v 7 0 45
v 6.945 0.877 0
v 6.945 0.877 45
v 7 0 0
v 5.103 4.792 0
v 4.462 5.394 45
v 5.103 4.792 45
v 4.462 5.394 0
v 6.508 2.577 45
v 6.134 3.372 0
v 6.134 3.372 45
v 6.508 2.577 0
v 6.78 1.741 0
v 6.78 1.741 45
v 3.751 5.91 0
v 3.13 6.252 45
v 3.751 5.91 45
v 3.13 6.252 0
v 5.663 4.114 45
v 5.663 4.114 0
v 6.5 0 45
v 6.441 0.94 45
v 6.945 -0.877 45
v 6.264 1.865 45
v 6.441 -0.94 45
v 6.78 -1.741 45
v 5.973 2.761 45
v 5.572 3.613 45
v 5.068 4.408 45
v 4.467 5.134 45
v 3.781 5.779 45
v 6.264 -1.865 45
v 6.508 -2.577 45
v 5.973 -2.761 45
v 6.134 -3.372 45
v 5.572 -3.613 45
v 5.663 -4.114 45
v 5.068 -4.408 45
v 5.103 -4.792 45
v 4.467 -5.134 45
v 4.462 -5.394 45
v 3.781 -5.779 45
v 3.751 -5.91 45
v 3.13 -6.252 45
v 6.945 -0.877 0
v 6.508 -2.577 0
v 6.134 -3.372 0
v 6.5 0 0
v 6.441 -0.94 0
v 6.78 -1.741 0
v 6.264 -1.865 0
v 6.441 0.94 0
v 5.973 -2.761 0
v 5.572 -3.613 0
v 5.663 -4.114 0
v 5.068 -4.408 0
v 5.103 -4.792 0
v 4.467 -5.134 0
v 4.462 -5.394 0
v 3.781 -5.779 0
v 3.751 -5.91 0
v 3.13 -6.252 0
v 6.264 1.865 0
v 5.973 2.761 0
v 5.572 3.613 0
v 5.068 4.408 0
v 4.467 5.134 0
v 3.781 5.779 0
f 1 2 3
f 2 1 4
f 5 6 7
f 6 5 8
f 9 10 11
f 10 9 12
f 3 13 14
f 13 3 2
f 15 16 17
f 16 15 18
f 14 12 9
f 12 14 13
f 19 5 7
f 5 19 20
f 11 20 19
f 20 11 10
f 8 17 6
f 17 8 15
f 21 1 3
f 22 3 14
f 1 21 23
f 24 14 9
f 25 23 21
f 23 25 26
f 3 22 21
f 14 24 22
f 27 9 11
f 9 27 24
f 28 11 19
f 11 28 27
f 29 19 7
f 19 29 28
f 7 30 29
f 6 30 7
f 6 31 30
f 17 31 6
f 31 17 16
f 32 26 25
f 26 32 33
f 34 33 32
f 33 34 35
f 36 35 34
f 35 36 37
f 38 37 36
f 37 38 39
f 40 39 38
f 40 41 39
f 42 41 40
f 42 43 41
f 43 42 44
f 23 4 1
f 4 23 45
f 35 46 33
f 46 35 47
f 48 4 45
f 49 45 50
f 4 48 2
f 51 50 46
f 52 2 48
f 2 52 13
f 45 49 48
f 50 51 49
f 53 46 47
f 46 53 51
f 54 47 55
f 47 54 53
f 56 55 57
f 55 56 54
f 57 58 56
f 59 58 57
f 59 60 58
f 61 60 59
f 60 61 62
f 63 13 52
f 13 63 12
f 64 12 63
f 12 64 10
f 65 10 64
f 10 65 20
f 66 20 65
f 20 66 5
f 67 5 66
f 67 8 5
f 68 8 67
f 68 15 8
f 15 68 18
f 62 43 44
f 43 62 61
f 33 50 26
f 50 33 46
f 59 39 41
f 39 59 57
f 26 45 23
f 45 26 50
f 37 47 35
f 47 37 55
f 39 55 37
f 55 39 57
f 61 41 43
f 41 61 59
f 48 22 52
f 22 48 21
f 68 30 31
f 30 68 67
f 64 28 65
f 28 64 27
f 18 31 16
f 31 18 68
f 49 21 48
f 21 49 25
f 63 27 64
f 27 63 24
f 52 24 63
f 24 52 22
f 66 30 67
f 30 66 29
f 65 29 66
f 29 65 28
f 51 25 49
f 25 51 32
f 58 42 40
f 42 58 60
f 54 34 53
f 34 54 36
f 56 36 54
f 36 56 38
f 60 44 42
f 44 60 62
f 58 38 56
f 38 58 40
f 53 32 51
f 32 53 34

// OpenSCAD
$fn = 50;


difference() {
	union() {
		cylinder(h = 45, r = 7.0000000000);
		translate(v = [-4.0000000000, 0, 0]) {
			cylinder(h = 45, r = 7.0000000000);
		}
	}
	union() {
		cylinder(h = 45, r = 3.2500000000);
		cylinder(h = 45, r = 1.8000000000);
		cylinder(h = 45, r = 1.8000000000);
		cylinder(h = 45, r = 1.8000000000);
		translate(v = [-8.5000000000, 0, 0]) {
			hull() {
				translate(v = [-3.7500000000, 0.0000000000, 0]) {
					cylinder(h = 45, r = 7.5000000000);
				}
				translate(v = [3.7500000000, 0.0000000000, 0]) {
					cylinder(h = 45, r = 7.5000000000);
				}
				translate(v = [-3.7500000000, -0.0000000000, 0]) {
					cylinder(h = 45, r = 7.5000000000);
				}
				translate(v = [3.7500000000, -0.0000000000, 0]) {
					cylinder(h = 45, r = 7.5000000000);
				}
			}
		}
		translate(v = [-1.0000000000, 0, 0.0000000000]) {
			cylinder(h = 45, r = 7.5000000000);
		}
	}
}
